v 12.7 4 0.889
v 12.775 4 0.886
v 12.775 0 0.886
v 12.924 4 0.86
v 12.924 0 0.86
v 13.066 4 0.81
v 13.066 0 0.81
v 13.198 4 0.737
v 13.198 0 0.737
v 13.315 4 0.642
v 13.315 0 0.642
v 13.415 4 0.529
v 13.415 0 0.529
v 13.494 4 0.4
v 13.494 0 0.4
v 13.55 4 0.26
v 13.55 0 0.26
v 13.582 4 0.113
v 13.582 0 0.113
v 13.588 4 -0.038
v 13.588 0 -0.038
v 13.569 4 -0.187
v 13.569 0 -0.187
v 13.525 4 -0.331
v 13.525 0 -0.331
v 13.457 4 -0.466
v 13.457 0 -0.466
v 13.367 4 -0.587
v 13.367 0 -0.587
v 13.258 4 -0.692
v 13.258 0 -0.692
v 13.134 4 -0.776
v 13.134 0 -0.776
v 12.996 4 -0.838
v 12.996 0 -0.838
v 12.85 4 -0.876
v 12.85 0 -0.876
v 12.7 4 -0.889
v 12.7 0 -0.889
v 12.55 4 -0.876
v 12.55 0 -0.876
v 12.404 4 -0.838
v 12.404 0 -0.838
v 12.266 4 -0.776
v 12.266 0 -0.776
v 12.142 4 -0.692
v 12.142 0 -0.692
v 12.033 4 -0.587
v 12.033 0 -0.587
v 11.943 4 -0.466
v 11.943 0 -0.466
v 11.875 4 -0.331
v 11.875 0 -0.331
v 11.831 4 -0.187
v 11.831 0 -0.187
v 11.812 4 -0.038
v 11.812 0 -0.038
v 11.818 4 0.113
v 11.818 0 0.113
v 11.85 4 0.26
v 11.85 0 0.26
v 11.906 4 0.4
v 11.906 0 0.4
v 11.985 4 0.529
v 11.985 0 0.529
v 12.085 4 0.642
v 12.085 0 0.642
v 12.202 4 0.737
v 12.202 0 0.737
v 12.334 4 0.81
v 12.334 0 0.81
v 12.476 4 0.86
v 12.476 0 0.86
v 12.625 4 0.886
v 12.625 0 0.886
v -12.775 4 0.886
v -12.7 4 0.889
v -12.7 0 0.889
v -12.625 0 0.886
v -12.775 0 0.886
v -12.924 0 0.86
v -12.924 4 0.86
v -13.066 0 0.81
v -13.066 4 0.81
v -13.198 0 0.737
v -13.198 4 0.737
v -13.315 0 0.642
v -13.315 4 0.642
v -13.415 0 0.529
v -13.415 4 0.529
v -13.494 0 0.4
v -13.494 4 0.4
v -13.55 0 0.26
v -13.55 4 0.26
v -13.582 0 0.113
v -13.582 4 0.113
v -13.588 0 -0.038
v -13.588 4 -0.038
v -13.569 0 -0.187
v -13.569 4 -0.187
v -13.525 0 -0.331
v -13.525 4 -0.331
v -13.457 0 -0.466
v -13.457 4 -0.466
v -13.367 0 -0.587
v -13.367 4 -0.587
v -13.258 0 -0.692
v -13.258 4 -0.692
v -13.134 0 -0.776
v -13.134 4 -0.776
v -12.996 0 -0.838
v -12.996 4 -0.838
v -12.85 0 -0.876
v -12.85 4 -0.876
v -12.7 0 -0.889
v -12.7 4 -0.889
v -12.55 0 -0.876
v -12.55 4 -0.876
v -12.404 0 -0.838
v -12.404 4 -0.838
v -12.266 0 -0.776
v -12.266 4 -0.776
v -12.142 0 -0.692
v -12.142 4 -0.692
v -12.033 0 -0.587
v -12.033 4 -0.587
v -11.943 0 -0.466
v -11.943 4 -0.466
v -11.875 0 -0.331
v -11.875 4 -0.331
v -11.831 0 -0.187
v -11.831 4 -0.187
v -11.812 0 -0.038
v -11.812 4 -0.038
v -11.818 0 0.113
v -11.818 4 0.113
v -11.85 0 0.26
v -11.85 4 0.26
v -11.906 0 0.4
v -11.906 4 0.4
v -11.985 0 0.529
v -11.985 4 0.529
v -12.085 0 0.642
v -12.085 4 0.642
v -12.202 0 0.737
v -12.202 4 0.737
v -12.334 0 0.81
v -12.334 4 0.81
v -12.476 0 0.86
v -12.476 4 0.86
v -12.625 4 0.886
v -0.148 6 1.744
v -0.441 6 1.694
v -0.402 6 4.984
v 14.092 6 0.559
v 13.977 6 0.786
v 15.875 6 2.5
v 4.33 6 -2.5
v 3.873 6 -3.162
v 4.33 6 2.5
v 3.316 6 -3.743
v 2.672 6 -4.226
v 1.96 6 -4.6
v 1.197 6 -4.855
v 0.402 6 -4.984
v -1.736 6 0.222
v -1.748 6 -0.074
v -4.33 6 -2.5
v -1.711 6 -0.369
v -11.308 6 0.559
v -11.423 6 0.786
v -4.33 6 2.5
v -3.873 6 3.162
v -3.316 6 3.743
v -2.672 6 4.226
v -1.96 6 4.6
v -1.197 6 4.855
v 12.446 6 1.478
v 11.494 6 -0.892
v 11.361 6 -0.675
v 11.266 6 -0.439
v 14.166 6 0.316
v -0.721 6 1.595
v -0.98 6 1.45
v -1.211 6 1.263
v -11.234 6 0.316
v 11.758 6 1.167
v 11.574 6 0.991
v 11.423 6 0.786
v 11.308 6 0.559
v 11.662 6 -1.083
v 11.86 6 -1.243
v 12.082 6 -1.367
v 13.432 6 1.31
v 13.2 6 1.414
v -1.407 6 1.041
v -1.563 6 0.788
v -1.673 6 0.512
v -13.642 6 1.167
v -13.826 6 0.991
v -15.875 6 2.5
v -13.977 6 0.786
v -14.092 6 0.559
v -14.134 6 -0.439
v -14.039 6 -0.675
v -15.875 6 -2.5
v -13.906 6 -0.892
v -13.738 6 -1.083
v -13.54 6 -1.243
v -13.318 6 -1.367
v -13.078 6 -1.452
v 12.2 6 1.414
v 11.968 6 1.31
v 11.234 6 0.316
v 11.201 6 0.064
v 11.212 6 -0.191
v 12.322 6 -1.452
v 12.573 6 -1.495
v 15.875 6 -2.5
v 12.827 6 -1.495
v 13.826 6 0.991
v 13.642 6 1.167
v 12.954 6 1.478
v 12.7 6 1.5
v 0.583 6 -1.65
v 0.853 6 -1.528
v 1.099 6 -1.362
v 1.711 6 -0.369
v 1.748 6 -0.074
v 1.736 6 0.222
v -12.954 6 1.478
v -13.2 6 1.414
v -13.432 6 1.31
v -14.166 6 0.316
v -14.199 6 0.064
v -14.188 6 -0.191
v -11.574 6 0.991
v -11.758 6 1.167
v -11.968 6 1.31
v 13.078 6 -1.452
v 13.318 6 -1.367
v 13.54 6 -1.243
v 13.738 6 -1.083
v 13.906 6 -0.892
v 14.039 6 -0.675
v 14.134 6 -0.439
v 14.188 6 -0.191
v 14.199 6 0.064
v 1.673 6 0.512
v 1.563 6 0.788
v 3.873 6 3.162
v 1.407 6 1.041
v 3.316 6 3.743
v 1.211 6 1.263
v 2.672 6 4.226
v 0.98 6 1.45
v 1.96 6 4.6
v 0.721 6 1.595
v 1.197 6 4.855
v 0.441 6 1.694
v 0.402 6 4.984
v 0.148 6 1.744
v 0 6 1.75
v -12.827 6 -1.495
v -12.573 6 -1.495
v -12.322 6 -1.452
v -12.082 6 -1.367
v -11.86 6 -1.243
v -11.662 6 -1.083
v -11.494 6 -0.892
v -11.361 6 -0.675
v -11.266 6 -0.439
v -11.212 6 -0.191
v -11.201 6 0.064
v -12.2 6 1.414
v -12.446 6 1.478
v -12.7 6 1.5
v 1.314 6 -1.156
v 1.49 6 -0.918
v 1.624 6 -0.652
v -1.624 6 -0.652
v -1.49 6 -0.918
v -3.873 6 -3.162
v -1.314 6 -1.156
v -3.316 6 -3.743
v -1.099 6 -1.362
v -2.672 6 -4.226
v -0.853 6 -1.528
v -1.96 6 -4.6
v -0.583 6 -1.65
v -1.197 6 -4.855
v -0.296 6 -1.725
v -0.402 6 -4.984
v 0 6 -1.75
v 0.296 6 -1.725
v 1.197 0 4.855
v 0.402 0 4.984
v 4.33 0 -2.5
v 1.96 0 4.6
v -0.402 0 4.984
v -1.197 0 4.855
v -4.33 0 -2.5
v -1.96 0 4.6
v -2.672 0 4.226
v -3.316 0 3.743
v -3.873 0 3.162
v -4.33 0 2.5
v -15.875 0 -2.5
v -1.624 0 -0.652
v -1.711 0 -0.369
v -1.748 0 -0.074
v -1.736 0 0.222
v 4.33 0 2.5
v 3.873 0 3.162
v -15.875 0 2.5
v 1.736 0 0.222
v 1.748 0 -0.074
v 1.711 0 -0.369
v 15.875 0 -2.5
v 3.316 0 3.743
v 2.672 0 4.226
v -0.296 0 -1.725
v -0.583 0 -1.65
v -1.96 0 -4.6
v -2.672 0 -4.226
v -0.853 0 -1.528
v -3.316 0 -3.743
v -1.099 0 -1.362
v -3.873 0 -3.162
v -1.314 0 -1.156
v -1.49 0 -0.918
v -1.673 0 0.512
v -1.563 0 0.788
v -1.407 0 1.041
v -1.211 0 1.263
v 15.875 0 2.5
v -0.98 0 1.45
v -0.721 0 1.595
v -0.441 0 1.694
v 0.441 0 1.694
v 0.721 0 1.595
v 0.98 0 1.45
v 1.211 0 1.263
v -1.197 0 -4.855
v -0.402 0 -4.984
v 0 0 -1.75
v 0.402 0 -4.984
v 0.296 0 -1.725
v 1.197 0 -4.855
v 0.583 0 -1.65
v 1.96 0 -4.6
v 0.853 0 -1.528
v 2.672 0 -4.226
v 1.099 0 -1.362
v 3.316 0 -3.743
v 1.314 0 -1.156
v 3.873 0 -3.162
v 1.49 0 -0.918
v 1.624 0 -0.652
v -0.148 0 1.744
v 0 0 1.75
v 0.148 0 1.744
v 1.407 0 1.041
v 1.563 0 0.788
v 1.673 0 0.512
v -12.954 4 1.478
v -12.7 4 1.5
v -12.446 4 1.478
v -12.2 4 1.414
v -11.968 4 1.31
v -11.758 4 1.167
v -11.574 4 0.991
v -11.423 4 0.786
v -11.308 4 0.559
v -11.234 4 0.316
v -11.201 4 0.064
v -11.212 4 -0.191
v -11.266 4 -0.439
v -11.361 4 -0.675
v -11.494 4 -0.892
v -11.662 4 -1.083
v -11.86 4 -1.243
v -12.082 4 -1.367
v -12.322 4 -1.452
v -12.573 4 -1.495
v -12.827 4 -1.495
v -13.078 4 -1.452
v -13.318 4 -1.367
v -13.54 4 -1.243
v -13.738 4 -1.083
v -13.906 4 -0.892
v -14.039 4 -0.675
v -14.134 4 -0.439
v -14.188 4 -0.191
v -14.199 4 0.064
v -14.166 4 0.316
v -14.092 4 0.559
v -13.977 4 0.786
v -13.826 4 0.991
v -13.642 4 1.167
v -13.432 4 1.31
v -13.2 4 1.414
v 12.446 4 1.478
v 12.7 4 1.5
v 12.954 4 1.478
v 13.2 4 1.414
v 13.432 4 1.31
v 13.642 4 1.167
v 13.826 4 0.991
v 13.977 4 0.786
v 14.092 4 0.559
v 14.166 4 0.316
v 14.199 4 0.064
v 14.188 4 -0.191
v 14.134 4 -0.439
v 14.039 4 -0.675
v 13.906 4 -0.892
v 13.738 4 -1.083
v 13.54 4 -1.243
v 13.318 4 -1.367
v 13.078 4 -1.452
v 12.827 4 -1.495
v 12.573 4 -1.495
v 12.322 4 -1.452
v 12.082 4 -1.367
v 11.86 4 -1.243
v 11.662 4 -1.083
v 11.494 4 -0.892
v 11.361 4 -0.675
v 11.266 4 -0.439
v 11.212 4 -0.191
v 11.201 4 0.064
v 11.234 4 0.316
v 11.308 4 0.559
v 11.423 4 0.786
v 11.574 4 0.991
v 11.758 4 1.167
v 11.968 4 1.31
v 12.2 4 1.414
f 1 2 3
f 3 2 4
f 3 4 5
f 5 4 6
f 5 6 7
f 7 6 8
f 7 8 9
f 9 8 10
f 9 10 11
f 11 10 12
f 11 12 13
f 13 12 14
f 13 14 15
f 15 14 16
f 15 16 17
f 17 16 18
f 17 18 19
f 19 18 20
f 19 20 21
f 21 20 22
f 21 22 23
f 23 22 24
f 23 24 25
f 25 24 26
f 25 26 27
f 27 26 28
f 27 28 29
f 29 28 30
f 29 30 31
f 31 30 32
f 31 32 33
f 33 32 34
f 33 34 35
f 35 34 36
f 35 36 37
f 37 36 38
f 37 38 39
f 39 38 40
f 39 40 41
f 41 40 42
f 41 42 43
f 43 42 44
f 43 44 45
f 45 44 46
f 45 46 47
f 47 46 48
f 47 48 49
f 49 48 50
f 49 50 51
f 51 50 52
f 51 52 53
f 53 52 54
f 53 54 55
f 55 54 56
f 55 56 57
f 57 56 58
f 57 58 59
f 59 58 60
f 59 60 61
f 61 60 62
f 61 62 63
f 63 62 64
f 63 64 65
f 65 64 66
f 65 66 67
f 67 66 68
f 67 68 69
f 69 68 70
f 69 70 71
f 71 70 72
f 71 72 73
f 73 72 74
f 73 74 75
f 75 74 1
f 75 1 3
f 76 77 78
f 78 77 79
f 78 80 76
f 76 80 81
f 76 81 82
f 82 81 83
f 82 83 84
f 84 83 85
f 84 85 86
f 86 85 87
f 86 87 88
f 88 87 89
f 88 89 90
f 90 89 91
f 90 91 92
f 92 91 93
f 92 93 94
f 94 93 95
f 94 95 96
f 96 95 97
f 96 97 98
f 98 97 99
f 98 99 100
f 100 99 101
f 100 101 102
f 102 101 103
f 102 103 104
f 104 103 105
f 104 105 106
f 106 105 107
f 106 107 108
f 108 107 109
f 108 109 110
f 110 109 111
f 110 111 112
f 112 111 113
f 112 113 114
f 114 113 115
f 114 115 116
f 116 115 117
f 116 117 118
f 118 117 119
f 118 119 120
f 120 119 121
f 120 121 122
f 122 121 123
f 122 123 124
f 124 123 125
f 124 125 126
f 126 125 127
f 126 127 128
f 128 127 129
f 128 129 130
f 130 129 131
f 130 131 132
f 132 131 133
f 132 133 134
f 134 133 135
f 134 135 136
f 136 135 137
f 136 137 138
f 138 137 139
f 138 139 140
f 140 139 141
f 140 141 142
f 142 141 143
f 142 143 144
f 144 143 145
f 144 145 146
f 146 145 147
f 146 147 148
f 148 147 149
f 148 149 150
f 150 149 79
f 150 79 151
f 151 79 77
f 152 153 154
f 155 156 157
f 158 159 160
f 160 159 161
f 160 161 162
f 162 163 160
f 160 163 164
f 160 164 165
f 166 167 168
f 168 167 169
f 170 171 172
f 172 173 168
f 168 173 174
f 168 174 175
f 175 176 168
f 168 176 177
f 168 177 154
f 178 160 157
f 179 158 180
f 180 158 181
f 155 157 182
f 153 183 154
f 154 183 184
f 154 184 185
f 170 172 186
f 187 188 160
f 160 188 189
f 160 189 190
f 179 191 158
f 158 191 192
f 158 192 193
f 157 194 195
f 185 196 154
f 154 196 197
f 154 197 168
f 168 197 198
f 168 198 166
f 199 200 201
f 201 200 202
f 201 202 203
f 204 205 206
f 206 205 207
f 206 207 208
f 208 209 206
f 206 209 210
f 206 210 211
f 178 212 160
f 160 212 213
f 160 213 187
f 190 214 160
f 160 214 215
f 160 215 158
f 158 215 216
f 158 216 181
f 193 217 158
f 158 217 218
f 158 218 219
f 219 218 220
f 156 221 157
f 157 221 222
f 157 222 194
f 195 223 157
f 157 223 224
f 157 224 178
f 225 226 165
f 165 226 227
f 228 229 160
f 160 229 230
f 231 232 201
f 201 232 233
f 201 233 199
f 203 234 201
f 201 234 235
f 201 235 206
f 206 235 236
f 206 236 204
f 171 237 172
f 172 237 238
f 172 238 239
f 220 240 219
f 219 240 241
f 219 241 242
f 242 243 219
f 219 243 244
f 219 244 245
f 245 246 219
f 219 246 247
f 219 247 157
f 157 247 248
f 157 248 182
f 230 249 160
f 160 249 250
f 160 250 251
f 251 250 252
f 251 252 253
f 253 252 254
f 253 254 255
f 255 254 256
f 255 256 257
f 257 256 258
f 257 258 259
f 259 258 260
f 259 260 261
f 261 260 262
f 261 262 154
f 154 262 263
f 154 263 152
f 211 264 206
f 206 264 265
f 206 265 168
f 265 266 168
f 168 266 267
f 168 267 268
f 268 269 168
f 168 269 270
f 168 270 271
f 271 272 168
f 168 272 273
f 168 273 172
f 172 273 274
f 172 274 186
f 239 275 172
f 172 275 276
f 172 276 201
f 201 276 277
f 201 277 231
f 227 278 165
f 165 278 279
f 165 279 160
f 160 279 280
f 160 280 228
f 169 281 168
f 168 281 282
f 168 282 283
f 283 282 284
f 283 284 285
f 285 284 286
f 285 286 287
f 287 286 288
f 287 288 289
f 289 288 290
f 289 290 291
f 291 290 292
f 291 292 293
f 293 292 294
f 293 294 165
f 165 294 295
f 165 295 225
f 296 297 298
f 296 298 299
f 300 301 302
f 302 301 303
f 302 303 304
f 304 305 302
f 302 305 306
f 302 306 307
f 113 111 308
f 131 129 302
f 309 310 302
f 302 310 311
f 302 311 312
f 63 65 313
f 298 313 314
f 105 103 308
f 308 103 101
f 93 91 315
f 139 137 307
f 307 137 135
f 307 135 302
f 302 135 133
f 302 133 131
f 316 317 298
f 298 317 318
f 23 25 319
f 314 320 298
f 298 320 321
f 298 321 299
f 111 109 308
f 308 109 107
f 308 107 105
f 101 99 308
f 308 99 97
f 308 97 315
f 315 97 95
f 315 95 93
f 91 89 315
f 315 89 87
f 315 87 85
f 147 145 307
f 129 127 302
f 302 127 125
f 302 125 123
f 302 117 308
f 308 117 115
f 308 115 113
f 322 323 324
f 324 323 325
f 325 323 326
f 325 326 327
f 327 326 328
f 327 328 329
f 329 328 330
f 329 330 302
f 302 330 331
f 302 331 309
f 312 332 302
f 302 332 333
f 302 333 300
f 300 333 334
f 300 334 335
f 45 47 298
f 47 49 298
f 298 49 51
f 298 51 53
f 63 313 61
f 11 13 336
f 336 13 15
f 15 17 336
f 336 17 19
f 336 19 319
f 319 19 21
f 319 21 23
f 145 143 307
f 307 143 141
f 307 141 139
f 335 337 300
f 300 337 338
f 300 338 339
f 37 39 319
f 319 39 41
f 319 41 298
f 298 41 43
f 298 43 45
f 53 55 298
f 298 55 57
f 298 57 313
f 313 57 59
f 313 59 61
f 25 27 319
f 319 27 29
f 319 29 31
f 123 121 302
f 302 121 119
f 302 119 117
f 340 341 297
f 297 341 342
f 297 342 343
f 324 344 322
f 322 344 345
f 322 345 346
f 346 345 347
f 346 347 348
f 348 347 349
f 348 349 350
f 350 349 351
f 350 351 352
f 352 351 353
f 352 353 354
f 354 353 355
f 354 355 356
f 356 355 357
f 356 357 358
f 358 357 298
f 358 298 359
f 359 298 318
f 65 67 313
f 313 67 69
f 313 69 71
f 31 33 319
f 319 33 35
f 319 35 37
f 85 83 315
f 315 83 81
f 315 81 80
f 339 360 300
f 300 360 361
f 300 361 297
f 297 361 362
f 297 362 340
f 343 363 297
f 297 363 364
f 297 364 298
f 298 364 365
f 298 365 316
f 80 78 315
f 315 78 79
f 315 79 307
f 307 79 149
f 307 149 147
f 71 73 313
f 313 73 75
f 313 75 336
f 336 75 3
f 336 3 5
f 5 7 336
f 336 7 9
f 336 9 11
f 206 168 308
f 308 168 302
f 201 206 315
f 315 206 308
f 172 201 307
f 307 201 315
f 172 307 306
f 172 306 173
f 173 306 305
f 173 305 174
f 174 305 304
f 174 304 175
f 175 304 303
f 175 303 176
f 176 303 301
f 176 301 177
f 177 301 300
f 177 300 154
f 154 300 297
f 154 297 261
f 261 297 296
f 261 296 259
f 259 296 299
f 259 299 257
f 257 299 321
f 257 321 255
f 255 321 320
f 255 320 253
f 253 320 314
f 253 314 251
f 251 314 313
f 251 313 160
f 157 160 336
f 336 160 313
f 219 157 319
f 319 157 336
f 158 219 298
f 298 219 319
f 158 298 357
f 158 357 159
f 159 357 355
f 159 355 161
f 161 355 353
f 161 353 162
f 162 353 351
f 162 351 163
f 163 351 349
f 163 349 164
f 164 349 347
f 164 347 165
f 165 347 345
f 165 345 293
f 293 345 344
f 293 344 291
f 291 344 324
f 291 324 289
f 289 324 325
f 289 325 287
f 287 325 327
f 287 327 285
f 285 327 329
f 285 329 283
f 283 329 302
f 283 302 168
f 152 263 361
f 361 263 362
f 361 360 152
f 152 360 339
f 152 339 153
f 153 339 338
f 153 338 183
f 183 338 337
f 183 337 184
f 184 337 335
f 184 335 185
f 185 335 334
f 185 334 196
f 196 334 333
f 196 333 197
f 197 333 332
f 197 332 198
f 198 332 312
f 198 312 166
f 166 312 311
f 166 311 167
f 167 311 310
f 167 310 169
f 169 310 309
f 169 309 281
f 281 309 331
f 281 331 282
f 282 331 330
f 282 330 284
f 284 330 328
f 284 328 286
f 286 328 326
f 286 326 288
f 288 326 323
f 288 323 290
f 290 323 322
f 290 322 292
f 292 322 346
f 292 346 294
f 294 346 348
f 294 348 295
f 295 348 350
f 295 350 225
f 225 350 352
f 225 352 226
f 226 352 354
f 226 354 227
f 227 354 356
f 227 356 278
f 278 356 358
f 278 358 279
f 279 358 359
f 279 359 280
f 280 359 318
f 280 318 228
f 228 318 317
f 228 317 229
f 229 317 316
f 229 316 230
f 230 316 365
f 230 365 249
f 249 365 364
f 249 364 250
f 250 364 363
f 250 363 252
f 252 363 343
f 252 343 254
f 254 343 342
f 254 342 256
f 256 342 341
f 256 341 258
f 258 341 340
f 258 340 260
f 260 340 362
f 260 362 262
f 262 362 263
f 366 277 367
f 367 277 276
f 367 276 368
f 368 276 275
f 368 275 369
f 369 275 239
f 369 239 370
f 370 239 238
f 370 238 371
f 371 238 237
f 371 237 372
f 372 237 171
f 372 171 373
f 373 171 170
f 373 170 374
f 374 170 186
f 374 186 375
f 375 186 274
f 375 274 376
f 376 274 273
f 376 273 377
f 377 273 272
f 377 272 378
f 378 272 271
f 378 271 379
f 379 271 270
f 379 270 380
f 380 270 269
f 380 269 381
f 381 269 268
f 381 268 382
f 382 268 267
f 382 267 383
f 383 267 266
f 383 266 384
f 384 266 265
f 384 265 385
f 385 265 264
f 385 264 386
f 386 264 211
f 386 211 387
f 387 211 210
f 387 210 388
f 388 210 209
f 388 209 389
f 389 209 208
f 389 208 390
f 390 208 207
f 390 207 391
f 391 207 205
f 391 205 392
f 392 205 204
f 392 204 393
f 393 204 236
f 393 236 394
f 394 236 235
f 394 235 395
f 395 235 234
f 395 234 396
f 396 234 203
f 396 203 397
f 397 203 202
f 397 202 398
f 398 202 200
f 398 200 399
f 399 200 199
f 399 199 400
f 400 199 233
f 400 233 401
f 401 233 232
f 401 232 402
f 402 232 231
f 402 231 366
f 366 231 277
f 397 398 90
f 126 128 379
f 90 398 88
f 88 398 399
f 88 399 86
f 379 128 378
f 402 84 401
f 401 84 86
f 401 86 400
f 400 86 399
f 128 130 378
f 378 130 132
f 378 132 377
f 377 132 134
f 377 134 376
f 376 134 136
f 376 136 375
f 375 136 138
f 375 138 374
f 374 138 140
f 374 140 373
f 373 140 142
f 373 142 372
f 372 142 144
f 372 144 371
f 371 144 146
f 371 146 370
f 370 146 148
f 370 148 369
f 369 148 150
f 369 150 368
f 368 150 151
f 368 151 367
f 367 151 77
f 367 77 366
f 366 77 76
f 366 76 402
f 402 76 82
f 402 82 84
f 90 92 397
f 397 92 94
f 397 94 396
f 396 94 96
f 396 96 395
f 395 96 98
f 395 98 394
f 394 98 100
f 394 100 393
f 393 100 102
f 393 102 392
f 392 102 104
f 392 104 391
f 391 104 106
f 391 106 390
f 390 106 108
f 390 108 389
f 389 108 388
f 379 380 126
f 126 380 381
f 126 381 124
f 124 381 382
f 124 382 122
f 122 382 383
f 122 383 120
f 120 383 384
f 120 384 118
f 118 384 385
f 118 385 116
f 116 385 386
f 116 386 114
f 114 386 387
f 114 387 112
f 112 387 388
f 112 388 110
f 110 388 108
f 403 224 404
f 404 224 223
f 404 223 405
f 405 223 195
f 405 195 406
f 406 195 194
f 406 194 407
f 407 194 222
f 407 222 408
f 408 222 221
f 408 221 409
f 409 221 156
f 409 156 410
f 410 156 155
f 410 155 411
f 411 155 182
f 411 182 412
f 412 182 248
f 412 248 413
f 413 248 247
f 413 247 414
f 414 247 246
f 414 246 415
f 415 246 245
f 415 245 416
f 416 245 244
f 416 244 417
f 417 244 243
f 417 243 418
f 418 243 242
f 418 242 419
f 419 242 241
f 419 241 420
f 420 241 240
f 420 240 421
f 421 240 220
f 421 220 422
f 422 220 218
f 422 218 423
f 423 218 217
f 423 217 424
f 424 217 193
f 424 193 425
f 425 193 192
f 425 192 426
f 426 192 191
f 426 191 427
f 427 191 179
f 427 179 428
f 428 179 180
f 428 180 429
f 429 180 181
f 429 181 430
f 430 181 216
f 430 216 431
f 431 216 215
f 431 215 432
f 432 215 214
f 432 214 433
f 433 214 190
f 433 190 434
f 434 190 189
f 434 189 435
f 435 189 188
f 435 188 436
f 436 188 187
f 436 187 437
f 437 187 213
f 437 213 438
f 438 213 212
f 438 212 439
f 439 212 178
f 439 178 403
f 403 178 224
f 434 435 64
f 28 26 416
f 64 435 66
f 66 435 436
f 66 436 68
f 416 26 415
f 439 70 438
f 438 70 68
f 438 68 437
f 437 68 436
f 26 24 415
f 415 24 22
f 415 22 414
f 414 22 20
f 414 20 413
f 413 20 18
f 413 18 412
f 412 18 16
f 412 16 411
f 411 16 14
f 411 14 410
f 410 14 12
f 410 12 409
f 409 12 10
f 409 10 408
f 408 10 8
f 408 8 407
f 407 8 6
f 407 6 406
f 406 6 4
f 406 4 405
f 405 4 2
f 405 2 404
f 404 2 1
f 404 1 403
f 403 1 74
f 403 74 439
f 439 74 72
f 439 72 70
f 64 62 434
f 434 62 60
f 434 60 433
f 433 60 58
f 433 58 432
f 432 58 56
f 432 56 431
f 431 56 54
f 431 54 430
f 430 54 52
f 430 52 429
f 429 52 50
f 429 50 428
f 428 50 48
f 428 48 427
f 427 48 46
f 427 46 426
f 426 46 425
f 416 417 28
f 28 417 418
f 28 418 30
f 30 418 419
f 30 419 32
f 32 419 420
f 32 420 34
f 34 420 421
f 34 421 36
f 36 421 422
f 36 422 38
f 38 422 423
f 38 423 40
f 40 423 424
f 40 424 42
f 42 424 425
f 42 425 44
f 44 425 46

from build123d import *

# Parameters (mm, degrees)
SKETCH1_R           = 0.889
SKETCH1_R_2         = 1.75
BOSS_EXTRUDE1_DEPTH = 6
SKETCH2_R           = 1.5
CUT_EXTRUDE1_DEPTH  = 2


with BuildPart() as part:
    # Sketch1 → Boss-Extrude1 (new body)
    with BuildSketch(Plane(origin=(0, 0, 0), x_dir=(1, 0, 0), z_dir=(0, 1, 0))):
        with BuildLine():
            Line((-15.875, 2.5), (-15.875, -2.5))
            Line((-15.875, -2.5), (-4.330127019, -2.5))
            ThreePointArc((-4.330127019, -2.5), (0, -5), (4.330127019, -2.5))
            Line((4.330127019, -2.5), (15.875, -2.5))
            Line((15.875, -2.5), (15.875, 2.5))
            Line((15.875, 2.5), (4.330127019, 2.5))
            ThreePointArc((4.330127019, 2.5), (0, 5), (-4.330127019, 2.5))
            Line((-4.330127019, 2.5), (-15.875, 2.5))
        make_face()
        with Locations(Location((-12.7, 0, 0), (0, 0, 270))):
            Circle(SKETCH1_R, mode=Mode.SUBTRACT)
        with Locations(Location((0, 0, 0), (0, 0, 270))):
            Circle(SKETCH1_R_2, mode=Mode.SUBTRACT)
        with Locations(Location((12.7, 0, 0), (0, 0, 90))):
            Circle(SKETCH1_R, mode=Mode.SUBTRACT)
    extrude(amount=BOSS_EXTRUDE1_DEPTH)

    # Sketch2 → Cut-Extrude1 (cut)
    with BuildSketch(Plane(origin=(0, 6, 0), x_dir=(1, 0, 0), z_dir=(0, 1, 0))):
        with Locations(Location((-12.7, 0, 0), (0, 0, 270))):
            Circle(SKETCH2_R)
        with Locations(Location((12.7, 0, 0), (0, 0, 270))):
            Circle(SKETCH2_R)
    extrude(amount=-CUT_EXTRUDE1_DEPTH, mode=Mode.SUBTRACT)


solid = part.part
